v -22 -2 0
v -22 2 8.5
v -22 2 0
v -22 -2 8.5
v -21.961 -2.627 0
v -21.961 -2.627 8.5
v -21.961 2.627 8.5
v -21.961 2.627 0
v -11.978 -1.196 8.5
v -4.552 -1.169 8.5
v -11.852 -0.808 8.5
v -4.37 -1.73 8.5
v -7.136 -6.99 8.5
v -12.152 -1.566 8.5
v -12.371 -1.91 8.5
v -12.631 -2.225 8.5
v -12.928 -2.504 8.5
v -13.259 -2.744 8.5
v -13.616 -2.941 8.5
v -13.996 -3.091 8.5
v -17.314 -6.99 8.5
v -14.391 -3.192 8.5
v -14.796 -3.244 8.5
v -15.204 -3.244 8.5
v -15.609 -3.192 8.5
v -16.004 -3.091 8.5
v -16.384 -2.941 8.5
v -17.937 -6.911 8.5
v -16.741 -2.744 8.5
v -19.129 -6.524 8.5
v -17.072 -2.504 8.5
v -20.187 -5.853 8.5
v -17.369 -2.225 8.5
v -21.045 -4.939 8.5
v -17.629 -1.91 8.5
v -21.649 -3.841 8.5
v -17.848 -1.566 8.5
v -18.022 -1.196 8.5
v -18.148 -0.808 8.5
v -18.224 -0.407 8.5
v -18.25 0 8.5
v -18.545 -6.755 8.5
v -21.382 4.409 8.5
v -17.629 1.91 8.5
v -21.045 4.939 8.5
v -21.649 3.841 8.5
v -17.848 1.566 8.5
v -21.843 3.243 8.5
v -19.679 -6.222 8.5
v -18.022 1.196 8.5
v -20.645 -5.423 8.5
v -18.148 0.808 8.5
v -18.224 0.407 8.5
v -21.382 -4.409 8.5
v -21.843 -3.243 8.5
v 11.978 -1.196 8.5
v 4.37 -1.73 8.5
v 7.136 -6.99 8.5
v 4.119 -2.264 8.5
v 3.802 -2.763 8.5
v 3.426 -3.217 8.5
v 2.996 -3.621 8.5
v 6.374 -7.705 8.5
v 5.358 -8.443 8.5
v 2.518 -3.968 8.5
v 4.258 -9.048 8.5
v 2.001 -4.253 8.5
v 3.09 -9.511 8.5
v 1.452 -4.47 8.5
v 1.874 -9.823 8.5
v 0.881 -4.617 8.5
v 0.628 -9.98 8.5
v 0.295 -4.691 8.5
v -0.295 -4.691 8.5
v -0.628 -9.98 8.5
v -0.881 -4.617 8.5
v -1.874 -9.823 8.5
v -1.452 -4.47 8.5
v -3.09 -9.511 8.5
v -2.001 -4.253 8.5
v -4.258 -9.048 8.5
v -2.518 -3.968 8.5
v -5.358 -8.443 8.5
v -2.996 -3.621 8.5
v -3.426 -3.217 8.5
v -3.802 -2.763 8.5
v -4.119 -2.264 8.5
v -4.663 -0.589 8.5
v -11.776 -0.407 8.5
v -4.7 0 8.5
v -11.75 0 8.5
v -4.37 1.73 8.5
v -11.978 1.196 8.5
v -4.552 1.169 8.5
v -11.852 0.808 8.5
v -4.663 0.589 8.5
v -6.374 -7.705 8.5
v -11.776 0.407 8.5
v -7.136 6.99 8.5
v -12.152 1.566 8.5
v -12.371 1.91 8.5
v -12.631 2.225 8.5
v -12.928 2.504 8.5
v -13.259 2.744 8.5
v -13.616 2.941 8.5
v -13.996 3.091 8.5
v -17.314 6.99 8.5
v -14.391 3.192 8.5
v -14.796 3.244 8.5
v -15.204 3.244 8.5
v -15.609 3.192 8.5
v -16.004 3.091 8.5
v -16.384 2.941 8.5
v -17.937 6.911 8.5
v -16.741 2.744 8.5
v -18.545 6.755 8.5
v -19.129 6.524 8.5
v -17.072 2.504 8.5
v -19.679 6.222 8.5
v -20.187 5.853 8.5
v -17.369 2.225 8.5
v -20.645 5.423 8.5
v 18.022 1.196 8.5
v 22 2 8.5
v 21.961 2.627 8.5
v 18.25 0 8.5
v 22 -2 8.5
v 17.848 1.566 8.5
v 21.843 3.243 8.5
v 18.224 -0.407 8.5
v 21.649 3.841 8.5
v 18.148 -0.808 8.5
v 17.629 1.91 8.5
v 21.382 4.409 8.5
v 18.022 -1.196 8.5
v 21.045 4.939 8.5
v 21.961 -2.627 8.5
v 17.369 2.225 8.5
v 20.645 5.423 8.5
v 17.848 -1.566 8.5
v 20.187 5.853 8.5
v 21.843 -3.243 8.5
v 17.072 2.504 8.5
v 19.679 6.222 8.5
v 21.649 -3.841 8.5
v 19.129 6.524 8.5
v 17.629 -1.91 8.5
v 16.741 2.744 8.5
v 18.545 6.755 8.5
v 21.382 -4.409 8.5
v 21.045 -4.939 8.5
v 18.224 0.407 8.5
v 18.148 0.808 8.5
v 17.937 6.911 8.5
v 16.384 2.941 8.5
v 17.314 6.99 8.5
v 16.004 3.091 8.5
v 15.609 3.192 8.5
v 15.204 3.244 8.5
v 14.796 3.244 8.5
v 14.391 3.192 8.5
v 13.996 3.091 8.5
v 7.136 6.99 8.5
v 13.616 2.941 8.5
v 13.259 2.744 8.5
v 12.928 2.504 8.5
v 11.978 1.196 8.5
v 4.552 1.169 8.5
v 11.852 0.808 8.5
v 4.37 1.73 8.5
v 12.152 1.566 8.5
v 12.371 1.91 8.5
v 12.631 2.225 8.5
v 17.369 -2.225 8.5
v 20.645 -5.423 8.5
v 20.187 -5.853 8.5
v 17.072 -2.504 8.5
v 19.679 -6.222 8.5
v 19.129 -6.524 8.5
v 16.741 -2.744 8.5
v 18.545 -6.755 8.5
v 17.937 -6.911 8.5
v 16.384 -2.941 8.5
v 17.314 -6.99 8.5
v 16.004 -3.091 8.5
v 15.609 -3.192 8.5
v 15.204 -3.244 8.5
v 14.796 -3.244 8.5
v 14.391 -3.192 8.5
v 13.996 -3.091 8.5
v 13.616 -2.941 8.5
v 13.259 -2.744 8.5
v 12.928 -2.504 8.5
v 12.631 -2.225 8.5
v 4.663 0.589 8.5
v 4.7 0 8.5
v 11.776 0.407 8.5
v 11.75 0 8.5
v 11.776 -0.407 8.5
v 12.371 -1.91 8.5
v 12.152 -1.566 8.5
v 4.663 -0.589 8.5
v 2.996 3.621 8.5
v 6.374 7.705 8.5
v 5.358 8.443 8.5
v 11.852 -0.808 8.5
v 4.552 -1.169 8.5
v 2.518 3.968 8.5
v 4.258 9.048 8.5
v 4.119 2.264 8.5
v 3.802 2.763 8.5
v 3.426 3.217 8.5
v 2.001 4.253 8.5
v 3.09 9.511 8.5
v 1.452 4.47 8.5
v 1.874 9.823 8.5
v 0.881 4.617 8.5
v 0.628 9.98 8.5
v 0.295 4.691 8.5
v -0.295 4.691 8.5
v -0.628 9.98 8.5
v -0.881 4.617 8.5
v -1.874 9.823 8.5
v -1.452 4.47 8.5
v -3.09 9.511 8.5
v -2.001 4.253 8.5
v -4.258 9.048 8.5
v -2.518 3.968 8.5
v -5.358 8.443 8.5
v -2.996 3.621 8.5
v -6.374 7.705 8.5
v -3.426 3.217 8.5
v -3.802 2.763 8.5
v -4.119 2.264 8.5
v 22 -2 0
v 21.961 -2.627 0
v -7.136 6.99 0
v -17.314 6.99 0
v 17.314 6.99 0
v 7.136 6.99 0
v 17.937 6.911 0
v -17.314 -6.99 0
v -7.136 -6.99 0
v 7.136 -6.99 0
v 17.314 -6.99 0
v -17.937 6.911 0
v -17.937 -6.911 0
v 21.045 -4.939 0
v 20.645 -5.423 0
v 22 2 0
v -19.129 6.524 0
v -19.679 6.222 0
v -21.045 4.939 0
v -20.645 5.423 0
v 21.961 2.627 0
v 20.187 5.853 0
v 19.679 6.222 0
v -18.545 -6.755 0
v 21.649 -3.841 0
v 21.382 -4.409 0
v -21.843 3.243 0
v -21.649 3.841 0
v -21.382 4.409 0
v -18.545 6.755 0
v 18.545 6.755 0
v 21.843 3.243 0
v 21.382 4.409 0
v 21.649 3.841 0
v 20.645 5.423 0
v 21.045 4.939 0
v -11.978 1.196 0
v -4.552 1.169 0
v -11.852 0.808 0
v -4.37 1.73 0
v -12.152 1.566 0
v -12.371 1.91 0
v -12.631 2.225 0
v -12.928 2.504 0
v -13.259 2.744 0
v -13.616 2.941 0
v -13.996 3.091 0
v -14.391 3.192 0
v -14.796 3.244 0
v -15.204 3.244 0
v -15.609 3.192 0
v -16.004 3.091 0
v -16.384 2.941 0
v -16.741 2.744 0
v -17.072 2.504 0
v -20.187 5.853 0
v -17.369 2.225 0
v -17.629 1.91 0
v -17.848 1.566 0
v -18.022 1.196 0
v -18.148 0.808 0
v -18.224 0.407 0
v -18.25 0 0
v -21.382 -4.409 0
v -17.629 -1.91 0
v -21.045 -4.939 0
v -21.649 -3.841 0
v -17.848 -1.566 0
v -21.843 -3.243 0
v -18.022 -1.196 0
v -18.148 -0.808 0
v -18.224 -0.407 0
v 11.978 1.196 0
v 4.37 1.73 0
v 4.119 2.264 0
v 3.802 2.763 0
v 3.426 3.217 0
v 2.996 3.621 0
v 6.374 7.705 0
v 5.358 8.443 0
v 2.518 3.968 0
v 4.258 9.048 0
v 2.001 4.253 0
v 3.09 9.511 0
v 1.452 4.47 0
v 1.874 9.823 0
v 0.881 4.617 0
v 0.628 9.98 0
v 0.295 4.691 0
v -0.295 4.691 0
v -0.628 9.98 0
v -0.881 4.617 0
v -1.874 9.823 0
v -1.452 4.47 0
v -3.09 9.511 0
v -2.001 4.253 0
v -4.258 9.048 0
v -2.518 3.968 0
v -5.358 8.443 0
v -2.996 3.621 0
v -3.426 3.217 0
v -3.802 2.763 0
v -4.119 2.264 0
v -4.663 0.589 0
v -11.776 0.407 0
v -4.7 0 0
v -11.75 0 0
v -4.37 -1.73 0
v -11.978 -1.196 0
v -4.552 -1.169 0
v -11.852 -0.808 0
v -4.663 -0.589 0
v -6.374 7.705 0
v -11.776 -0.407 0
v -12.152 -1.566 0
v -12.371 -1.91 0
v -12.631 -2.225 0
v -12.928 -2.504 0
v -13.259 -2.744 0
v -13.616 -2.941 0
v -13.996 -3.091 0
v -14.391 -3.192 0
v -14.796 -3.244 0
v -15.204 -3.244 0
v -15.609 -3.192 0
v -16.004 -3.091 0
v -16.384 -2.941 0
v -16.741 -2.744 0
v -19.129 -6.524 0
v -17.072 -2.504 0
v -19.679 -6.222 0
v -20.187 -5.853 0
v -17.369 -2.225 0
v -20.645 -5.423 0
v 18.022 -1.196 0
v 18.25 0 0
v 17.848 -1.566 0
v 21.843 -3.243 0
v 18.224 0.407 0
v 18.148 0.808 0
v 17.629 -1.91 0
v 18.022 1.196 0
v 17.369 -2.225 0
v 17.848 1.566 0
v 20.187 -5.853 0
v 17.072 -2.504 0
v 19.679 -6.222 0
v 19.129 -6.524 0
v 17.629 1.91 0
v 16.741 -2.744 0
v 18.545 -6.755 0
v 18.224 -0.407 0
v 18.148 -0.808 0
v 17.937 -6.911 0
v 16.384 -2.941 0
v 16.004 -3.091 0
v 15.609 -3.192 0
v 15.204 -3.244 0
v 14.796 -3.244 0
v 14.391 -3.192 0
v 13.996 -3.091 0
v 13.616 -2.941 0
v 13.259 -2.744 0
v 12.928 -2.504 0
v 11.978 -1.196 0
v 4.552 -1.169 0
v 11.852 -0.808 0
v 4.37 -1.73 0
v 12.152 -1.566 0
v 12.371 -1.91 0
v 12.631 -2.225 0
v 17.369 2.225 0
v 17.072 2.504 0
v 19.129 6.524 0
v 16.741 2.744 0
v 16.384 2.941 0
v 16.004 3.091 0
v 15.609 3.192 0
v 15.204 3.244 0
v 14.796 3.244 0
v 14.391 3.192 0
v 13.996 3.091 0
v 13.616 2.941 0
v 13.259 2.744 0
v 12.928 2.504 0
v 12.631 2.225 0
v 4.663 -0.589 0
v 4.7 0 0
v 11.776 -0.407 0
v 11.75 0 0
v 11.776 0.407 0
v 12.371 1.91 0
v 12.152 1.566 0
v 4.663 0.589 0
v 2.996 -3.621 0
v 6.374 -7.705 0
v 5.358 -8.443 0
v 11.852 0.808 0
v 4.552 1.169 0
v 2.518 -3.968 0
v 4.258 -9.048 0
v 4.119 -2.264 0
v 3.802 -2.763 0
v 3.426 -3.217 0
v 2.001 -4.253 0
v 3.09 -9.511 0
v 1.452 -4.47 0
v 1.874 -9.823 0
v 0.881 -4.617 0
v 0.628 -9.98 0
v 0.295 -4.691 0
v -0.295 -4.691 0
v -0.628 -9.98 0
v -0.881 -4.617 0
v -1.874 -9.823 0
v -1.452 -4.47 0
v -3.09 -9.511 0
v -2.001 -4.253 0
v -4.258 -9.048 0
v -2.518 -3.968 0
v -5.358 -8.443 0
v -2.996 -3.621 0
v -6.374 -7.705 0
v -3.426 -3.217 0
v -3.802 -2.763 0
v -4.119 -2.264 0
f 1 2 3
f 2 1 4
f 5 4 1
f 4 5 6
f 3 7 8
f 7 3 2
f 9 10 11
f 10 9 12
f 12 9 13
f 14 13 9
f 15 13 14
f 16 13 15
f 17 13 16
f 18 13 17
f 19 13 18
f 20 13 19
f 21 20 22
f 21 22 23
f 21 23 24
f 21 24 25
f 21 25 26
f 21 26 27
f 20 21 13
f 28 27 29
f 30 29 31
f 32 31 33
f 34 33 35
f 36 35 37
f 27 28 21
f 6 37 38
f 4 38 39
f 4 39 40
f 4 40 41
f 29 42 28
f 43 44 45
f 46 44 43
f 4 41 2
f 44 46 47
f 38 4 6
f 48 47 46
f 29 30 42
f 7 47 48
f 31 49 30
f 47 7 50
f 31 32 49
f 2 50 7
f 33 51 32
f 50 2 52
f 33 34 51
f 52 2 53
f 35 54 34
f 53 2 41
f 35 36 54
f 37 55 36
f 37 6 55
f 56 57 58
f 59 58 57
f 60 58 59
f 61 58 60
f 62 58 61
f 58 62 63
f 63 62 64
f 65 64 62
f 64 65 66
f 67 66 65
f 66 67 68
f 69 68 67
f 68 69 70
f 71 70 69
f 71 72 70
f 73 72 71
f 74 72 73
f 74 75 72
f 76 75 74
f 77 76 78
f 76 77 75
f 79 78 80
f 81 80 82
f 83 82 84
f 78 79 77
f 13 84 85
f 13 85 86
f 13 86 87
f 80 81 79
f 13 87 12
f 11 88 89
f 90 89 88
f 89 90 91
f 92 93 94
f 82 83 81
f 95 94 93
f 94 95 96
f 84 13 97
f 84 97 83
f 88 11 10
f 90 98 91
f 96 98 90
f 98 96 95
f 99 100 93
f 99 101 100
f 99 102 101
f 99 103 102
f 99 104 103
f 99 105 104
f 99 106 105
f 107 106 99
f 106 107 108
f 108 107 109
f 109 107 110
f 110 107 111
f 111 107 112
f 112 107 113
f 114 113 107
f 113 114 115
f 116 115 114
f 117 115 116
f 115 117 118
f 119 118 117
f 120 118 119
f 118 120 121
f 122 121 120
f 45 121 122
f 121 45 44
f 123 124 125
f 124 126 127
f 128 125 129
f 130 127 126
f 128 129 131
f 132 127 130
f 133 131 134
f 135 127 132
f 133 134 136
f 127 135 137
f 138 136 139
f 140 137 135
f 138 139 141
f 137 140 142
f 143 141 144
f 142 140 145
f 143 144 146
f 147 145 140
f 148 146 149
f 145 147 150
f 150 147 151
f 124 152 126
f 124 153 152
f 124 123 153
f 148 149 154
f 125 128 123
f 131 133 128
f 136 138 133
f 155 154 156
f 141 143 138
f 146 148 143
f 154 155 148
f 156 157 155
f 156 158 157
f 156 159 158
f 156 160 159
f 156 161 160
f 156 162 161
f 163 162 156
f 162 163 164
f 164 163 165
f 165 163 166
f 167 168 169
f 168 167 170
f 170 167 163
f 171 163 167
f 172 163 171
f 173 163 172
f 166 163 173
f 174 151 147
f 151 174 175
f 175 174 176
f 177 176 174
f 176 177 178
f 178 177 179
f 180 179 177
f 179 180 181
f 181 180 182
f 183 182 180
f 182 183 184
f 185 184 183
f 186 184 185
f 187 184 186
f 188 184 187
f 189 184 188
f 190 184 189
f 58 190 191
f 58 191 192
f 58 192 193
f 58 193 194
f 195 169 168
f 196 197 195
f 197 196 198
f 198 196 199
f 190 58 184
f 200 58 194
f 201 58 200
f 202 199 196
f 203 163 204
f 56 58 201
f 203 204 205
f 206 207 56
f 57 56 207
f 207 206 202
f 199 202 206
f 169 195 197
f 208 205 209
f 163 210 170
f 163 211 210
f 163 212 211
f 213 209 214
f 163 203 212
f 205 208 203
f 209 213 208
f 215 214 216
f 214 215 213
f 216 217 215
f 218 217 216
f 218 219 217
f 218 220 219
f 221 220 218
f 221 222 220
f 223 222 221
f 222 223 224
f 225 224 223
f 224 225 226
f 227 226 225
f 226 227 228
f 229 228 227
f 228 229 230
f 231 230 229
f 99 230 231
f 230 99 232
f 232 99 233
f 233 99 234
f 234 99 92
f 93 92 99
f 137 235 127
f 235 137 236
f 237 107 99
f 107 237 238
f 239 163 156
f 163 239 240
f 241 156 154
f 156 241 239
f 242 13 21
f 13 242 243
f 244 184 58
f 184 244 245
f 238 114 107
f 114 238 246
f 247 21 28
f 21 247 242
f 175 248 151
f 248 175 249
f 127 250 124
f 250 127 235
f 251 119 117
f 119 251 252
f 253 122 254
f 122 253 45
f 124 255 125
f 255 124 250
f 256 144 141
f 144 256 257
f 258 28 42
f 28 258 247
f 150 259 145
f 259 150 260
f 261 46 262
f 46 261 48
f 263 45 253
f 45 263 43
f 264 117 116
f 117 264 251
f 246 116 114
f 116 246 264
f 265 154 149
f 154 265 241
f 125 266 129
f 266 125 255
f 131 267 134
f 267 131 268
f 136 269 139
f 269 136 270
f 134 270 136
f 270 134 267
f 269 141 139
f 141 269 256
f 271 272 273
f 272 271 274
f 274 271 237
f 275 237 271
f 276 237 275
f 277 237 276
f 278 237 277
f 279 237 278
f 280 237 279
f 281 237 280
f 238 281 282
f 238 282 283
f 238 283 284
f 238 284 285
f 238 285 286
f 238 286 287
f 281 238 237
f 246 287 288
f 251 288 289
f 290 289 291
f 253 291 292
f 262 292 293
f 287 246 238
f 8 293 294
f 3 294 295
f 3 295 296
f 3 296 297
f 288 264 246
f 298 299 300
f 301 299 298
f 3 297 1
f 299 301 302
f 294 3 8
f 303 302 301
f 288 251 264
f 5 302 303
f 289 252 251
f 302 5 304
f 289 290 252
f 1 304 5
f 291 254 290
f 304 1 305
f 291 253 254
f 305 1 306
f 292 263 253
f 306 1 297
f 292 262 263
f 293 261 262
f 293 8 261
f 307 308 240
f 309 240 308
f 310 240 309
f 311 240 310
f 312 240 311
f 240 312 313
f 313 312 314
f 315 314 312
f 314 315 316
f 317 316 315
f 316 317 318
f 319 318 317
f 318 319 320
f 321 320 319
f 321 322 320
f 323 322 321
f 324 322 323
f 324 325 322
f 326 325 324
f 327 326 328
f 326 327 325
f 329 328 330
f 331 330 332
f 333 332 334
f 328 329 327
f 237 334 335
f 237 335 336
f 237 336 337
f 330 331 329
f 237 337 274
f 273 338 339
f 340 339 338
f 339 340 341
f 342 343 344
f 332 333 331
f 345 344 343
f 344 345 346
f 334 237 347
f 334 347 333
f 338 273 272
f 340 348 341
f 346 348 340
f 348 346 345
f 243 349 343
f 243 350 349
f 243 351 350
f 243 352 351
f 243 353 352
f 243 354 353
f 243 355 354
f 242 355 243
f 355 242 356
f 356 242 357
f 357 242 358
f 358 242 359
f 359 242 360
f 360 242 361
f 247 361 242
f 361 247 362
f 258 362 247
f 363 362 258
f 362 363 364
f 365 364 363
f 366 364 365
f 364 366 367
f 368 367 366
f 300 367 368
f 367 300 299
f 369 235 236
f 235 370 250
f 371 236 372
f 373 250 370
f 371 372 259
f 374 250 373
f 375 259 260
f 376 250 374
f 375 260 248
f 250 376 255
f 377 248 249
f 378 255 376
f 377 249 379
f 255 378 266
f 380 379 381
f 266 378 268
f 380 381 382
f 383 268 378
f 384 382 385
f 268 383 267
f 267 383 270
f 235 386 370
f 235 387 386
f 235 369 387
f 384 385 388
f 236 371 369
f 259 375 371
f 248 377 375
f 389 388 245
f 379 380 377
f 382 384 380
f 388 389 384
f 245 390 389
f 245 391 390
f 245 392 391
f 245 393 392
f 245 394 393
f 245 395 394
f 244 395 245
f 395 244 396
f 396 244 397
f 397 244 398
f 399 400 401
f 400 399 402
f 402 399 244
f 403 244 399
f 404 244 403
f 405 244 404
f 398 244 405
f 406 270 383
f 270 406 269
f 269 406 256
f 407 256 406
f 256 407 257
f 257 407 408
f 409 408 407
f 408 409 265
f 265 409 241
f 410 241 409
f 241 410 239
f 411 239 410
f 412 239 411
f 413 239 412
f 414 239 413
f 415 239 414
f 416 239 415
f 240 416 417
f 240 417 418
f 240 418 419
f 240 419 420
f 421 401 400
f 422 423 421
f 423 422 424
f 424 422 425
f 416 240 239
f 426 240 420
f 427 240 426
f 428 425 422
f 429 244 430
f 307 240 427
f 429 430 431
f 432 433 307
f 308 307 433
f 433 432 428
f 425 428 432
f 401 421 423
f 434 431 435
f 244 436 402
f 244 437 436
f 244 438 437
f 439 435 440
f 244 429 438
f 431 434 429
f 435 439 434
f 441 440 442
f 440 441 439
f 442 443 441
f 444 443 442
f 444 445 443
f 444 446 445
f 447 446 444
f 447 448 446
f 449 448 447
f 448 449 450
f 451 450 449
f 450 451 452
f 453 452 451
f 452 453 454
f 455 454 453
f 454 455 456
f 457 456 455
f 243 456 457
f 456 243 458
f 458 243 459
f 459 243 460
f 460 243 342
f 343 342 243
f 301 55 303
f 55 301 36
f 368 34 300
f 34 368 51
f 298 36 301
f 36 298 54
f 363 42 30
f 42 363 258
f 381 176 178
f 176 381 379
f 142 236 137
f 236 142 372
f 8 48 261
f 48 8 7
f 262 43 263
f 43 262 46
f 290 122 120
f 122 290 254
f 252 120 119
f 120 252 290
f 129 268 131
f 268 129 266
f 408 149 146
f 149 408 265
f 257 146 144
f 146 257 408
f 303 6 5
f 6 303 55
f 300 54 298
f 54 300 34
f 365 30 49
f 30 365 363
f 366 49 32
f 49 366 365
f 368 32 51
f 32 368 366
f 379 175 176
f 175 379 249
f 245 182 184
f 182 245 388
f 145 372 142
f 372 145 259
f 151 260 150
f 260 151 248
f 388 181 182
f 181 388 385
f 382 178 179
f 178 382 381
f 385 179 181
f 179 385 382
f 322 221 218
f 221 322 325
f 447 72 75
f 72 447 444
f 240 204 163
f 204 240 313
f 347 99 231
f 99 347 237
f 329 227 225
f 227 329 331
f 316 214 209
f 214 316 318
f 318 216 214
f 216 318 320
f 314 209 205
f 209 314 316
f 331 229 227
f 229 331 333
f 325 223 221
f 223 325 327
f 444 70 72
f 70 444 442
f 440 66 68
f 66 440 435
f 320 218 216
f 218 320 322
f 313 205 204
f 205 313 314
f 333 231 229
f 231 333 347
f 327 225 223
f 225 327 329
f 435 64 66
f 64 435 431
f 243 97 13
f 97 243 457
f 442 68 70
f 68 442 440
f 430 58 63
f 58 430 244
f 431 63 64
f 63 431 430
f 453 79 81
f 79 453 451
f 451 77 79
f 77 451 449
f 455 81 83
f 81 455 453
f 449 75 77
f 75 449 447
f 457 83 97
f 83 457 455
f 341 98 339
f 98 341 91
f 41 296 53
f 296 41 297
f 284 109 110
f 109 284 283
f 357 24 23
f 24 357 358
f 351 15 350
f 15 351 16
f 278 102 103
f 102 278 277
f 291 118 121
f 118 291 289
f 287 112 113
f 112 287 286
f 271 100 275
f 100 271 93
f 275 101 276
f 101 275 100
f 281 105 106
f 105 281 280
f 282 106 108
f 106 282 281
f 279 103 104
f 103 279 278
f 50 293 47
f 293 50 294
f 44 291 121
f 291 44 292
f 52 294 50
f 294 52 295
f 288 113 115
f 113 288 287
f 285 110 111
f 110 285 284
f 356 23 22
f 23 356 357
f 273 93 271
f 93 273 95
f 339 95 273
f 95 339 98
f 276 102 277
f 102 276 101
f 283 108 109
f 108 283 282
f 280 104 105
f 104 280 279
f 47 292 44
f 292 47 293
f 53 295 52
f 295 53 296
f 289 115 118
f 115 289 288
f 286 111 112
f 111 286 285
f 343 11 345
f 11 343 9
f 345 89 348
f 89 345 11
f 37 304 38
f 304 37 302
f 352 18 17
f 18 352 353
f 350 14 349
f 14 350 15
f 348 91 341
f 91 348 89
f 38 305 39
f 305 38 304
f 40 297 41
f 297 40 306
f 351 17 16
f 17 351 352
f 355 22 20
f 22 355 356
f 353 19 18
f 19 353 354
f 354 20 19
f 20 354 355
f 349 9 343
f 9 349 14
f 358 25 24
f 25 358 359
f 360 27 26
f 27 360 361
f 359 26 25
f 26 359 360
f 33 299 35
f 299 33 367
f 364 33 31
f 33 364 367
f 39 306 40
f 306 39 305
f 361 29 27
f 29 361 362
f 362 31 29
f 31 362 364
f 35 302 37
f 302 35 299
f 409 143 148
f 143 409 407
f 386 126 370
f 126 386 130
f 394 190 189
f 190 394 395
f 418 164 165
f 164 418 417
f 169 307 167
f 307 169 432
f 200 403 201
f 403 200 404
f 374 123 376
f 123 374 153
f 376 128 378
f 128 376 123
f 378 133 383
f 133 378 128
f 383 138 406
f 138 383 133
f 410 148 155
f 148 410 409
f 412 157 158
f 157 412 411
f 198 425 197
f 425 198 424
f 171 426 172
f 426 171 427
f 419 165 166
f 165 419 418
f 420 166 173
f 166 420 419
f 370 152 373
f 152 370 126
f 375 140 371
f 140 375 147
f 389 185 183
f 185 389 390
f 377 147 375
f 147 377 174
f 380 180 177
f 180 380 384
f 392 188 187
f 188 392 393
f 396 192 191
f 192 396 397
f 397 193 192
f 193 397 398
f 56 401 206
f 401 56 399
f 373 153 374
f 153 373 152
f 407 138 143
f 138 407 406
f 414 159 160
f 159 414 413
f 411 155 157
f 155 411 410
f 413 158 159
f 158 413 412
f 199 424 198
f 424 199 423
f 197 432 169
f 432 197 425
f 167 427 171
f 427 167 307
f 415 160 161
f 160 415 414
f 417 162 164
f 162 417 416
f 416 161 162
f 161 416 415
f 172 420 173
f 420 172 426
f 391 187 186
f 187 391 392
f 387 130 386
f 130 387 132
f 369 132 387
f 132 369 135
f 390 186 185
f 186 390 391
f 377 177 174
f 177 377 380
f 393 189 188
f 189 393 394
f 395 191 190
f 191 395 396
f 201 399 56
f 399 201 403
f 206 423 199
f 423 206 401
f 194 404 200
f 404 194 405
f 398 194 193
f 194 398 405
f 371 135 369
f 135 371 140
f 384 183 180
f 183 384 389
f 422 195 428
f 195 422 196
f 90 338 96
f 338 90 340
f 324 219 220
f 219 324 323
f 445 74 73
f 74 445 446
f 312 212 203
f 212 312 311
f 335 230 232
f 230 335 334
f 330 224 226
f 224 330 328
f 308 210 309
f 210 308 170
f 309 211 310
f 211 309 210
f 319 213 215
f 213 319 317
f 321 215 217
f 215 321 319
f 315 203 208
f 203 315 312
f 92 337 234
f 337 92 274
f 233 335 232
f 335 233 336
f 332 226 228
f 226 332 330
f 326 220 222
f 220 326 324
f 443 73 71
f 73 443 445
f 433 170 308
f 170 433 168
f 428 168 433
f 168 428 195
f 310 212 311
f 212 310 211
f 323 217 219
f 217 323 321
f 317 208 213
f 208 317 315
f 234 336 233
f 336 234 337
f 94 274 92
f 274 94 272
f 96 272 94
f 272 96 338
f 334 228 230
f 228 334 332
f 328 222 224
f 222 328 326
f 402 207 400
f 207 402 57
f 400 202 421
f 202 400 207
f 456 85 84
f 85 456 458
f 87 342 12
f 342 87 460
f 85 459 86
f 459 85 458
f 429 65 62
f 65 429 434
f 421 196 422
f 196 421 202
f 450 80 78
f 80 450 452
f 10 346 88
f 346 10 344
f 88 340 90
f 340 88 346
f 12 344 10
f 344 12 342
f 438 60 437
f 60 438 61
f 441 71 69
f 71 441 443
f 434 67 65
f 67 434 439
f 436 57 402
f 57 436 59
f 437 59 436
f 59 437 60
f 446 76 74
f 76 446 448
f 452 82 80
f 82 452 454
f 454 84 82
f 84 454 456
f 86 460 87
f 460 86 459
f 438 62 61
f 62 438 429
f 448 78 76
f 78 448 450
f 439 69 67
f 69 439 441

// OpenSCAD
$fn = 50;


difference() {
	union() {
		translate(v = [0, 0, 0]) {
			rotate(a = [0, 0, 0]) {
				hull() {
					translate(v = [-17.0000000000, 2.0000000000, 0]) {
						rotate(a = [0, 0, 0]) {
							translate(v = [0, 0, 0]) {
								rotate(a = [0, 0, 0]) {
									cylinder(h = 8.5000000000, r = 5);
								}
							}
						}
					}
					translate(v = [17.0000000000, 2.0000000000, 0]) {
						rotate(a = [0, 0, 0]) {
							translate(v = [0, 0, 0]) {
								rotate(a = [0, 0, 0]) {
									cylinder(h = 8.5000000000, r = 5);
								}
							}
						}
					}
					translate(v = [-17.0000000000, -2.0000000000, 0]) {
						rotate(a = [0, 0, 0]) {
							translate(v = [0, 0, 0]) {
								rotate(a = [0, 0, 0]) {
									cylinder(h = 8.5000000000, r = 5);
								}
							}
						}
					}
					translate(v = [17.0000000000, -2.0000000000, 0]) {
						rotate(a = [0, 0, 0]) {
							translate(v = [0, 0, 0]) {
								rotate(a = [0, 0, 0]) {
									cylinder(h = 8.5000000000, r = 5);
								}
							}
						}
					}
				}
			}
		}
		translate(v = [0, 0, 0.0000000000]) {
			rotate(a = [0, 0, 0]) {
				cylinder(h = 8.5000000000, r = 10.0000000000);
			}
		}
	}
	union() {
		translate(v = [-15.0000000000, 0.0000000000, 0]) {
			rotate(a = [0, 0, 0]) {
				translate(v = [0, 0, -50]) {
					rotate(a = [0, 0, 0]) {
						cylinder(h = 100, r = 3.2500000000);
					}
				}
			}
		}
		translate(v = [0.0000000000, 0.0000000000, 0]) {
			rotate(a = [0, 0, 0]) {
				translate(v = [0, 0, -50]) {
					rotate(a = [0, 0, 0]) {
						cylinder(h = 100, r = 3.2500000000);
					}
				}
			}
		}
		translate(v = [15.0000000000, 0.0000000000, 0]) {
			rotate(a = [0, 0, 0]) {
				translate(v = [0, 0, -50]) {
					rotate(a = [0, 0, 0]) {
						cylinder(h = 100, r = 3.2500000000);
					}
				}
			}
		}
		translate(v = [0, 0, -125.0000000000]) {
			rotate(a = [0, 0, 0]) {
				cylinder(h = 250, r = 4.7000000000);
			}
		}
	}
}
